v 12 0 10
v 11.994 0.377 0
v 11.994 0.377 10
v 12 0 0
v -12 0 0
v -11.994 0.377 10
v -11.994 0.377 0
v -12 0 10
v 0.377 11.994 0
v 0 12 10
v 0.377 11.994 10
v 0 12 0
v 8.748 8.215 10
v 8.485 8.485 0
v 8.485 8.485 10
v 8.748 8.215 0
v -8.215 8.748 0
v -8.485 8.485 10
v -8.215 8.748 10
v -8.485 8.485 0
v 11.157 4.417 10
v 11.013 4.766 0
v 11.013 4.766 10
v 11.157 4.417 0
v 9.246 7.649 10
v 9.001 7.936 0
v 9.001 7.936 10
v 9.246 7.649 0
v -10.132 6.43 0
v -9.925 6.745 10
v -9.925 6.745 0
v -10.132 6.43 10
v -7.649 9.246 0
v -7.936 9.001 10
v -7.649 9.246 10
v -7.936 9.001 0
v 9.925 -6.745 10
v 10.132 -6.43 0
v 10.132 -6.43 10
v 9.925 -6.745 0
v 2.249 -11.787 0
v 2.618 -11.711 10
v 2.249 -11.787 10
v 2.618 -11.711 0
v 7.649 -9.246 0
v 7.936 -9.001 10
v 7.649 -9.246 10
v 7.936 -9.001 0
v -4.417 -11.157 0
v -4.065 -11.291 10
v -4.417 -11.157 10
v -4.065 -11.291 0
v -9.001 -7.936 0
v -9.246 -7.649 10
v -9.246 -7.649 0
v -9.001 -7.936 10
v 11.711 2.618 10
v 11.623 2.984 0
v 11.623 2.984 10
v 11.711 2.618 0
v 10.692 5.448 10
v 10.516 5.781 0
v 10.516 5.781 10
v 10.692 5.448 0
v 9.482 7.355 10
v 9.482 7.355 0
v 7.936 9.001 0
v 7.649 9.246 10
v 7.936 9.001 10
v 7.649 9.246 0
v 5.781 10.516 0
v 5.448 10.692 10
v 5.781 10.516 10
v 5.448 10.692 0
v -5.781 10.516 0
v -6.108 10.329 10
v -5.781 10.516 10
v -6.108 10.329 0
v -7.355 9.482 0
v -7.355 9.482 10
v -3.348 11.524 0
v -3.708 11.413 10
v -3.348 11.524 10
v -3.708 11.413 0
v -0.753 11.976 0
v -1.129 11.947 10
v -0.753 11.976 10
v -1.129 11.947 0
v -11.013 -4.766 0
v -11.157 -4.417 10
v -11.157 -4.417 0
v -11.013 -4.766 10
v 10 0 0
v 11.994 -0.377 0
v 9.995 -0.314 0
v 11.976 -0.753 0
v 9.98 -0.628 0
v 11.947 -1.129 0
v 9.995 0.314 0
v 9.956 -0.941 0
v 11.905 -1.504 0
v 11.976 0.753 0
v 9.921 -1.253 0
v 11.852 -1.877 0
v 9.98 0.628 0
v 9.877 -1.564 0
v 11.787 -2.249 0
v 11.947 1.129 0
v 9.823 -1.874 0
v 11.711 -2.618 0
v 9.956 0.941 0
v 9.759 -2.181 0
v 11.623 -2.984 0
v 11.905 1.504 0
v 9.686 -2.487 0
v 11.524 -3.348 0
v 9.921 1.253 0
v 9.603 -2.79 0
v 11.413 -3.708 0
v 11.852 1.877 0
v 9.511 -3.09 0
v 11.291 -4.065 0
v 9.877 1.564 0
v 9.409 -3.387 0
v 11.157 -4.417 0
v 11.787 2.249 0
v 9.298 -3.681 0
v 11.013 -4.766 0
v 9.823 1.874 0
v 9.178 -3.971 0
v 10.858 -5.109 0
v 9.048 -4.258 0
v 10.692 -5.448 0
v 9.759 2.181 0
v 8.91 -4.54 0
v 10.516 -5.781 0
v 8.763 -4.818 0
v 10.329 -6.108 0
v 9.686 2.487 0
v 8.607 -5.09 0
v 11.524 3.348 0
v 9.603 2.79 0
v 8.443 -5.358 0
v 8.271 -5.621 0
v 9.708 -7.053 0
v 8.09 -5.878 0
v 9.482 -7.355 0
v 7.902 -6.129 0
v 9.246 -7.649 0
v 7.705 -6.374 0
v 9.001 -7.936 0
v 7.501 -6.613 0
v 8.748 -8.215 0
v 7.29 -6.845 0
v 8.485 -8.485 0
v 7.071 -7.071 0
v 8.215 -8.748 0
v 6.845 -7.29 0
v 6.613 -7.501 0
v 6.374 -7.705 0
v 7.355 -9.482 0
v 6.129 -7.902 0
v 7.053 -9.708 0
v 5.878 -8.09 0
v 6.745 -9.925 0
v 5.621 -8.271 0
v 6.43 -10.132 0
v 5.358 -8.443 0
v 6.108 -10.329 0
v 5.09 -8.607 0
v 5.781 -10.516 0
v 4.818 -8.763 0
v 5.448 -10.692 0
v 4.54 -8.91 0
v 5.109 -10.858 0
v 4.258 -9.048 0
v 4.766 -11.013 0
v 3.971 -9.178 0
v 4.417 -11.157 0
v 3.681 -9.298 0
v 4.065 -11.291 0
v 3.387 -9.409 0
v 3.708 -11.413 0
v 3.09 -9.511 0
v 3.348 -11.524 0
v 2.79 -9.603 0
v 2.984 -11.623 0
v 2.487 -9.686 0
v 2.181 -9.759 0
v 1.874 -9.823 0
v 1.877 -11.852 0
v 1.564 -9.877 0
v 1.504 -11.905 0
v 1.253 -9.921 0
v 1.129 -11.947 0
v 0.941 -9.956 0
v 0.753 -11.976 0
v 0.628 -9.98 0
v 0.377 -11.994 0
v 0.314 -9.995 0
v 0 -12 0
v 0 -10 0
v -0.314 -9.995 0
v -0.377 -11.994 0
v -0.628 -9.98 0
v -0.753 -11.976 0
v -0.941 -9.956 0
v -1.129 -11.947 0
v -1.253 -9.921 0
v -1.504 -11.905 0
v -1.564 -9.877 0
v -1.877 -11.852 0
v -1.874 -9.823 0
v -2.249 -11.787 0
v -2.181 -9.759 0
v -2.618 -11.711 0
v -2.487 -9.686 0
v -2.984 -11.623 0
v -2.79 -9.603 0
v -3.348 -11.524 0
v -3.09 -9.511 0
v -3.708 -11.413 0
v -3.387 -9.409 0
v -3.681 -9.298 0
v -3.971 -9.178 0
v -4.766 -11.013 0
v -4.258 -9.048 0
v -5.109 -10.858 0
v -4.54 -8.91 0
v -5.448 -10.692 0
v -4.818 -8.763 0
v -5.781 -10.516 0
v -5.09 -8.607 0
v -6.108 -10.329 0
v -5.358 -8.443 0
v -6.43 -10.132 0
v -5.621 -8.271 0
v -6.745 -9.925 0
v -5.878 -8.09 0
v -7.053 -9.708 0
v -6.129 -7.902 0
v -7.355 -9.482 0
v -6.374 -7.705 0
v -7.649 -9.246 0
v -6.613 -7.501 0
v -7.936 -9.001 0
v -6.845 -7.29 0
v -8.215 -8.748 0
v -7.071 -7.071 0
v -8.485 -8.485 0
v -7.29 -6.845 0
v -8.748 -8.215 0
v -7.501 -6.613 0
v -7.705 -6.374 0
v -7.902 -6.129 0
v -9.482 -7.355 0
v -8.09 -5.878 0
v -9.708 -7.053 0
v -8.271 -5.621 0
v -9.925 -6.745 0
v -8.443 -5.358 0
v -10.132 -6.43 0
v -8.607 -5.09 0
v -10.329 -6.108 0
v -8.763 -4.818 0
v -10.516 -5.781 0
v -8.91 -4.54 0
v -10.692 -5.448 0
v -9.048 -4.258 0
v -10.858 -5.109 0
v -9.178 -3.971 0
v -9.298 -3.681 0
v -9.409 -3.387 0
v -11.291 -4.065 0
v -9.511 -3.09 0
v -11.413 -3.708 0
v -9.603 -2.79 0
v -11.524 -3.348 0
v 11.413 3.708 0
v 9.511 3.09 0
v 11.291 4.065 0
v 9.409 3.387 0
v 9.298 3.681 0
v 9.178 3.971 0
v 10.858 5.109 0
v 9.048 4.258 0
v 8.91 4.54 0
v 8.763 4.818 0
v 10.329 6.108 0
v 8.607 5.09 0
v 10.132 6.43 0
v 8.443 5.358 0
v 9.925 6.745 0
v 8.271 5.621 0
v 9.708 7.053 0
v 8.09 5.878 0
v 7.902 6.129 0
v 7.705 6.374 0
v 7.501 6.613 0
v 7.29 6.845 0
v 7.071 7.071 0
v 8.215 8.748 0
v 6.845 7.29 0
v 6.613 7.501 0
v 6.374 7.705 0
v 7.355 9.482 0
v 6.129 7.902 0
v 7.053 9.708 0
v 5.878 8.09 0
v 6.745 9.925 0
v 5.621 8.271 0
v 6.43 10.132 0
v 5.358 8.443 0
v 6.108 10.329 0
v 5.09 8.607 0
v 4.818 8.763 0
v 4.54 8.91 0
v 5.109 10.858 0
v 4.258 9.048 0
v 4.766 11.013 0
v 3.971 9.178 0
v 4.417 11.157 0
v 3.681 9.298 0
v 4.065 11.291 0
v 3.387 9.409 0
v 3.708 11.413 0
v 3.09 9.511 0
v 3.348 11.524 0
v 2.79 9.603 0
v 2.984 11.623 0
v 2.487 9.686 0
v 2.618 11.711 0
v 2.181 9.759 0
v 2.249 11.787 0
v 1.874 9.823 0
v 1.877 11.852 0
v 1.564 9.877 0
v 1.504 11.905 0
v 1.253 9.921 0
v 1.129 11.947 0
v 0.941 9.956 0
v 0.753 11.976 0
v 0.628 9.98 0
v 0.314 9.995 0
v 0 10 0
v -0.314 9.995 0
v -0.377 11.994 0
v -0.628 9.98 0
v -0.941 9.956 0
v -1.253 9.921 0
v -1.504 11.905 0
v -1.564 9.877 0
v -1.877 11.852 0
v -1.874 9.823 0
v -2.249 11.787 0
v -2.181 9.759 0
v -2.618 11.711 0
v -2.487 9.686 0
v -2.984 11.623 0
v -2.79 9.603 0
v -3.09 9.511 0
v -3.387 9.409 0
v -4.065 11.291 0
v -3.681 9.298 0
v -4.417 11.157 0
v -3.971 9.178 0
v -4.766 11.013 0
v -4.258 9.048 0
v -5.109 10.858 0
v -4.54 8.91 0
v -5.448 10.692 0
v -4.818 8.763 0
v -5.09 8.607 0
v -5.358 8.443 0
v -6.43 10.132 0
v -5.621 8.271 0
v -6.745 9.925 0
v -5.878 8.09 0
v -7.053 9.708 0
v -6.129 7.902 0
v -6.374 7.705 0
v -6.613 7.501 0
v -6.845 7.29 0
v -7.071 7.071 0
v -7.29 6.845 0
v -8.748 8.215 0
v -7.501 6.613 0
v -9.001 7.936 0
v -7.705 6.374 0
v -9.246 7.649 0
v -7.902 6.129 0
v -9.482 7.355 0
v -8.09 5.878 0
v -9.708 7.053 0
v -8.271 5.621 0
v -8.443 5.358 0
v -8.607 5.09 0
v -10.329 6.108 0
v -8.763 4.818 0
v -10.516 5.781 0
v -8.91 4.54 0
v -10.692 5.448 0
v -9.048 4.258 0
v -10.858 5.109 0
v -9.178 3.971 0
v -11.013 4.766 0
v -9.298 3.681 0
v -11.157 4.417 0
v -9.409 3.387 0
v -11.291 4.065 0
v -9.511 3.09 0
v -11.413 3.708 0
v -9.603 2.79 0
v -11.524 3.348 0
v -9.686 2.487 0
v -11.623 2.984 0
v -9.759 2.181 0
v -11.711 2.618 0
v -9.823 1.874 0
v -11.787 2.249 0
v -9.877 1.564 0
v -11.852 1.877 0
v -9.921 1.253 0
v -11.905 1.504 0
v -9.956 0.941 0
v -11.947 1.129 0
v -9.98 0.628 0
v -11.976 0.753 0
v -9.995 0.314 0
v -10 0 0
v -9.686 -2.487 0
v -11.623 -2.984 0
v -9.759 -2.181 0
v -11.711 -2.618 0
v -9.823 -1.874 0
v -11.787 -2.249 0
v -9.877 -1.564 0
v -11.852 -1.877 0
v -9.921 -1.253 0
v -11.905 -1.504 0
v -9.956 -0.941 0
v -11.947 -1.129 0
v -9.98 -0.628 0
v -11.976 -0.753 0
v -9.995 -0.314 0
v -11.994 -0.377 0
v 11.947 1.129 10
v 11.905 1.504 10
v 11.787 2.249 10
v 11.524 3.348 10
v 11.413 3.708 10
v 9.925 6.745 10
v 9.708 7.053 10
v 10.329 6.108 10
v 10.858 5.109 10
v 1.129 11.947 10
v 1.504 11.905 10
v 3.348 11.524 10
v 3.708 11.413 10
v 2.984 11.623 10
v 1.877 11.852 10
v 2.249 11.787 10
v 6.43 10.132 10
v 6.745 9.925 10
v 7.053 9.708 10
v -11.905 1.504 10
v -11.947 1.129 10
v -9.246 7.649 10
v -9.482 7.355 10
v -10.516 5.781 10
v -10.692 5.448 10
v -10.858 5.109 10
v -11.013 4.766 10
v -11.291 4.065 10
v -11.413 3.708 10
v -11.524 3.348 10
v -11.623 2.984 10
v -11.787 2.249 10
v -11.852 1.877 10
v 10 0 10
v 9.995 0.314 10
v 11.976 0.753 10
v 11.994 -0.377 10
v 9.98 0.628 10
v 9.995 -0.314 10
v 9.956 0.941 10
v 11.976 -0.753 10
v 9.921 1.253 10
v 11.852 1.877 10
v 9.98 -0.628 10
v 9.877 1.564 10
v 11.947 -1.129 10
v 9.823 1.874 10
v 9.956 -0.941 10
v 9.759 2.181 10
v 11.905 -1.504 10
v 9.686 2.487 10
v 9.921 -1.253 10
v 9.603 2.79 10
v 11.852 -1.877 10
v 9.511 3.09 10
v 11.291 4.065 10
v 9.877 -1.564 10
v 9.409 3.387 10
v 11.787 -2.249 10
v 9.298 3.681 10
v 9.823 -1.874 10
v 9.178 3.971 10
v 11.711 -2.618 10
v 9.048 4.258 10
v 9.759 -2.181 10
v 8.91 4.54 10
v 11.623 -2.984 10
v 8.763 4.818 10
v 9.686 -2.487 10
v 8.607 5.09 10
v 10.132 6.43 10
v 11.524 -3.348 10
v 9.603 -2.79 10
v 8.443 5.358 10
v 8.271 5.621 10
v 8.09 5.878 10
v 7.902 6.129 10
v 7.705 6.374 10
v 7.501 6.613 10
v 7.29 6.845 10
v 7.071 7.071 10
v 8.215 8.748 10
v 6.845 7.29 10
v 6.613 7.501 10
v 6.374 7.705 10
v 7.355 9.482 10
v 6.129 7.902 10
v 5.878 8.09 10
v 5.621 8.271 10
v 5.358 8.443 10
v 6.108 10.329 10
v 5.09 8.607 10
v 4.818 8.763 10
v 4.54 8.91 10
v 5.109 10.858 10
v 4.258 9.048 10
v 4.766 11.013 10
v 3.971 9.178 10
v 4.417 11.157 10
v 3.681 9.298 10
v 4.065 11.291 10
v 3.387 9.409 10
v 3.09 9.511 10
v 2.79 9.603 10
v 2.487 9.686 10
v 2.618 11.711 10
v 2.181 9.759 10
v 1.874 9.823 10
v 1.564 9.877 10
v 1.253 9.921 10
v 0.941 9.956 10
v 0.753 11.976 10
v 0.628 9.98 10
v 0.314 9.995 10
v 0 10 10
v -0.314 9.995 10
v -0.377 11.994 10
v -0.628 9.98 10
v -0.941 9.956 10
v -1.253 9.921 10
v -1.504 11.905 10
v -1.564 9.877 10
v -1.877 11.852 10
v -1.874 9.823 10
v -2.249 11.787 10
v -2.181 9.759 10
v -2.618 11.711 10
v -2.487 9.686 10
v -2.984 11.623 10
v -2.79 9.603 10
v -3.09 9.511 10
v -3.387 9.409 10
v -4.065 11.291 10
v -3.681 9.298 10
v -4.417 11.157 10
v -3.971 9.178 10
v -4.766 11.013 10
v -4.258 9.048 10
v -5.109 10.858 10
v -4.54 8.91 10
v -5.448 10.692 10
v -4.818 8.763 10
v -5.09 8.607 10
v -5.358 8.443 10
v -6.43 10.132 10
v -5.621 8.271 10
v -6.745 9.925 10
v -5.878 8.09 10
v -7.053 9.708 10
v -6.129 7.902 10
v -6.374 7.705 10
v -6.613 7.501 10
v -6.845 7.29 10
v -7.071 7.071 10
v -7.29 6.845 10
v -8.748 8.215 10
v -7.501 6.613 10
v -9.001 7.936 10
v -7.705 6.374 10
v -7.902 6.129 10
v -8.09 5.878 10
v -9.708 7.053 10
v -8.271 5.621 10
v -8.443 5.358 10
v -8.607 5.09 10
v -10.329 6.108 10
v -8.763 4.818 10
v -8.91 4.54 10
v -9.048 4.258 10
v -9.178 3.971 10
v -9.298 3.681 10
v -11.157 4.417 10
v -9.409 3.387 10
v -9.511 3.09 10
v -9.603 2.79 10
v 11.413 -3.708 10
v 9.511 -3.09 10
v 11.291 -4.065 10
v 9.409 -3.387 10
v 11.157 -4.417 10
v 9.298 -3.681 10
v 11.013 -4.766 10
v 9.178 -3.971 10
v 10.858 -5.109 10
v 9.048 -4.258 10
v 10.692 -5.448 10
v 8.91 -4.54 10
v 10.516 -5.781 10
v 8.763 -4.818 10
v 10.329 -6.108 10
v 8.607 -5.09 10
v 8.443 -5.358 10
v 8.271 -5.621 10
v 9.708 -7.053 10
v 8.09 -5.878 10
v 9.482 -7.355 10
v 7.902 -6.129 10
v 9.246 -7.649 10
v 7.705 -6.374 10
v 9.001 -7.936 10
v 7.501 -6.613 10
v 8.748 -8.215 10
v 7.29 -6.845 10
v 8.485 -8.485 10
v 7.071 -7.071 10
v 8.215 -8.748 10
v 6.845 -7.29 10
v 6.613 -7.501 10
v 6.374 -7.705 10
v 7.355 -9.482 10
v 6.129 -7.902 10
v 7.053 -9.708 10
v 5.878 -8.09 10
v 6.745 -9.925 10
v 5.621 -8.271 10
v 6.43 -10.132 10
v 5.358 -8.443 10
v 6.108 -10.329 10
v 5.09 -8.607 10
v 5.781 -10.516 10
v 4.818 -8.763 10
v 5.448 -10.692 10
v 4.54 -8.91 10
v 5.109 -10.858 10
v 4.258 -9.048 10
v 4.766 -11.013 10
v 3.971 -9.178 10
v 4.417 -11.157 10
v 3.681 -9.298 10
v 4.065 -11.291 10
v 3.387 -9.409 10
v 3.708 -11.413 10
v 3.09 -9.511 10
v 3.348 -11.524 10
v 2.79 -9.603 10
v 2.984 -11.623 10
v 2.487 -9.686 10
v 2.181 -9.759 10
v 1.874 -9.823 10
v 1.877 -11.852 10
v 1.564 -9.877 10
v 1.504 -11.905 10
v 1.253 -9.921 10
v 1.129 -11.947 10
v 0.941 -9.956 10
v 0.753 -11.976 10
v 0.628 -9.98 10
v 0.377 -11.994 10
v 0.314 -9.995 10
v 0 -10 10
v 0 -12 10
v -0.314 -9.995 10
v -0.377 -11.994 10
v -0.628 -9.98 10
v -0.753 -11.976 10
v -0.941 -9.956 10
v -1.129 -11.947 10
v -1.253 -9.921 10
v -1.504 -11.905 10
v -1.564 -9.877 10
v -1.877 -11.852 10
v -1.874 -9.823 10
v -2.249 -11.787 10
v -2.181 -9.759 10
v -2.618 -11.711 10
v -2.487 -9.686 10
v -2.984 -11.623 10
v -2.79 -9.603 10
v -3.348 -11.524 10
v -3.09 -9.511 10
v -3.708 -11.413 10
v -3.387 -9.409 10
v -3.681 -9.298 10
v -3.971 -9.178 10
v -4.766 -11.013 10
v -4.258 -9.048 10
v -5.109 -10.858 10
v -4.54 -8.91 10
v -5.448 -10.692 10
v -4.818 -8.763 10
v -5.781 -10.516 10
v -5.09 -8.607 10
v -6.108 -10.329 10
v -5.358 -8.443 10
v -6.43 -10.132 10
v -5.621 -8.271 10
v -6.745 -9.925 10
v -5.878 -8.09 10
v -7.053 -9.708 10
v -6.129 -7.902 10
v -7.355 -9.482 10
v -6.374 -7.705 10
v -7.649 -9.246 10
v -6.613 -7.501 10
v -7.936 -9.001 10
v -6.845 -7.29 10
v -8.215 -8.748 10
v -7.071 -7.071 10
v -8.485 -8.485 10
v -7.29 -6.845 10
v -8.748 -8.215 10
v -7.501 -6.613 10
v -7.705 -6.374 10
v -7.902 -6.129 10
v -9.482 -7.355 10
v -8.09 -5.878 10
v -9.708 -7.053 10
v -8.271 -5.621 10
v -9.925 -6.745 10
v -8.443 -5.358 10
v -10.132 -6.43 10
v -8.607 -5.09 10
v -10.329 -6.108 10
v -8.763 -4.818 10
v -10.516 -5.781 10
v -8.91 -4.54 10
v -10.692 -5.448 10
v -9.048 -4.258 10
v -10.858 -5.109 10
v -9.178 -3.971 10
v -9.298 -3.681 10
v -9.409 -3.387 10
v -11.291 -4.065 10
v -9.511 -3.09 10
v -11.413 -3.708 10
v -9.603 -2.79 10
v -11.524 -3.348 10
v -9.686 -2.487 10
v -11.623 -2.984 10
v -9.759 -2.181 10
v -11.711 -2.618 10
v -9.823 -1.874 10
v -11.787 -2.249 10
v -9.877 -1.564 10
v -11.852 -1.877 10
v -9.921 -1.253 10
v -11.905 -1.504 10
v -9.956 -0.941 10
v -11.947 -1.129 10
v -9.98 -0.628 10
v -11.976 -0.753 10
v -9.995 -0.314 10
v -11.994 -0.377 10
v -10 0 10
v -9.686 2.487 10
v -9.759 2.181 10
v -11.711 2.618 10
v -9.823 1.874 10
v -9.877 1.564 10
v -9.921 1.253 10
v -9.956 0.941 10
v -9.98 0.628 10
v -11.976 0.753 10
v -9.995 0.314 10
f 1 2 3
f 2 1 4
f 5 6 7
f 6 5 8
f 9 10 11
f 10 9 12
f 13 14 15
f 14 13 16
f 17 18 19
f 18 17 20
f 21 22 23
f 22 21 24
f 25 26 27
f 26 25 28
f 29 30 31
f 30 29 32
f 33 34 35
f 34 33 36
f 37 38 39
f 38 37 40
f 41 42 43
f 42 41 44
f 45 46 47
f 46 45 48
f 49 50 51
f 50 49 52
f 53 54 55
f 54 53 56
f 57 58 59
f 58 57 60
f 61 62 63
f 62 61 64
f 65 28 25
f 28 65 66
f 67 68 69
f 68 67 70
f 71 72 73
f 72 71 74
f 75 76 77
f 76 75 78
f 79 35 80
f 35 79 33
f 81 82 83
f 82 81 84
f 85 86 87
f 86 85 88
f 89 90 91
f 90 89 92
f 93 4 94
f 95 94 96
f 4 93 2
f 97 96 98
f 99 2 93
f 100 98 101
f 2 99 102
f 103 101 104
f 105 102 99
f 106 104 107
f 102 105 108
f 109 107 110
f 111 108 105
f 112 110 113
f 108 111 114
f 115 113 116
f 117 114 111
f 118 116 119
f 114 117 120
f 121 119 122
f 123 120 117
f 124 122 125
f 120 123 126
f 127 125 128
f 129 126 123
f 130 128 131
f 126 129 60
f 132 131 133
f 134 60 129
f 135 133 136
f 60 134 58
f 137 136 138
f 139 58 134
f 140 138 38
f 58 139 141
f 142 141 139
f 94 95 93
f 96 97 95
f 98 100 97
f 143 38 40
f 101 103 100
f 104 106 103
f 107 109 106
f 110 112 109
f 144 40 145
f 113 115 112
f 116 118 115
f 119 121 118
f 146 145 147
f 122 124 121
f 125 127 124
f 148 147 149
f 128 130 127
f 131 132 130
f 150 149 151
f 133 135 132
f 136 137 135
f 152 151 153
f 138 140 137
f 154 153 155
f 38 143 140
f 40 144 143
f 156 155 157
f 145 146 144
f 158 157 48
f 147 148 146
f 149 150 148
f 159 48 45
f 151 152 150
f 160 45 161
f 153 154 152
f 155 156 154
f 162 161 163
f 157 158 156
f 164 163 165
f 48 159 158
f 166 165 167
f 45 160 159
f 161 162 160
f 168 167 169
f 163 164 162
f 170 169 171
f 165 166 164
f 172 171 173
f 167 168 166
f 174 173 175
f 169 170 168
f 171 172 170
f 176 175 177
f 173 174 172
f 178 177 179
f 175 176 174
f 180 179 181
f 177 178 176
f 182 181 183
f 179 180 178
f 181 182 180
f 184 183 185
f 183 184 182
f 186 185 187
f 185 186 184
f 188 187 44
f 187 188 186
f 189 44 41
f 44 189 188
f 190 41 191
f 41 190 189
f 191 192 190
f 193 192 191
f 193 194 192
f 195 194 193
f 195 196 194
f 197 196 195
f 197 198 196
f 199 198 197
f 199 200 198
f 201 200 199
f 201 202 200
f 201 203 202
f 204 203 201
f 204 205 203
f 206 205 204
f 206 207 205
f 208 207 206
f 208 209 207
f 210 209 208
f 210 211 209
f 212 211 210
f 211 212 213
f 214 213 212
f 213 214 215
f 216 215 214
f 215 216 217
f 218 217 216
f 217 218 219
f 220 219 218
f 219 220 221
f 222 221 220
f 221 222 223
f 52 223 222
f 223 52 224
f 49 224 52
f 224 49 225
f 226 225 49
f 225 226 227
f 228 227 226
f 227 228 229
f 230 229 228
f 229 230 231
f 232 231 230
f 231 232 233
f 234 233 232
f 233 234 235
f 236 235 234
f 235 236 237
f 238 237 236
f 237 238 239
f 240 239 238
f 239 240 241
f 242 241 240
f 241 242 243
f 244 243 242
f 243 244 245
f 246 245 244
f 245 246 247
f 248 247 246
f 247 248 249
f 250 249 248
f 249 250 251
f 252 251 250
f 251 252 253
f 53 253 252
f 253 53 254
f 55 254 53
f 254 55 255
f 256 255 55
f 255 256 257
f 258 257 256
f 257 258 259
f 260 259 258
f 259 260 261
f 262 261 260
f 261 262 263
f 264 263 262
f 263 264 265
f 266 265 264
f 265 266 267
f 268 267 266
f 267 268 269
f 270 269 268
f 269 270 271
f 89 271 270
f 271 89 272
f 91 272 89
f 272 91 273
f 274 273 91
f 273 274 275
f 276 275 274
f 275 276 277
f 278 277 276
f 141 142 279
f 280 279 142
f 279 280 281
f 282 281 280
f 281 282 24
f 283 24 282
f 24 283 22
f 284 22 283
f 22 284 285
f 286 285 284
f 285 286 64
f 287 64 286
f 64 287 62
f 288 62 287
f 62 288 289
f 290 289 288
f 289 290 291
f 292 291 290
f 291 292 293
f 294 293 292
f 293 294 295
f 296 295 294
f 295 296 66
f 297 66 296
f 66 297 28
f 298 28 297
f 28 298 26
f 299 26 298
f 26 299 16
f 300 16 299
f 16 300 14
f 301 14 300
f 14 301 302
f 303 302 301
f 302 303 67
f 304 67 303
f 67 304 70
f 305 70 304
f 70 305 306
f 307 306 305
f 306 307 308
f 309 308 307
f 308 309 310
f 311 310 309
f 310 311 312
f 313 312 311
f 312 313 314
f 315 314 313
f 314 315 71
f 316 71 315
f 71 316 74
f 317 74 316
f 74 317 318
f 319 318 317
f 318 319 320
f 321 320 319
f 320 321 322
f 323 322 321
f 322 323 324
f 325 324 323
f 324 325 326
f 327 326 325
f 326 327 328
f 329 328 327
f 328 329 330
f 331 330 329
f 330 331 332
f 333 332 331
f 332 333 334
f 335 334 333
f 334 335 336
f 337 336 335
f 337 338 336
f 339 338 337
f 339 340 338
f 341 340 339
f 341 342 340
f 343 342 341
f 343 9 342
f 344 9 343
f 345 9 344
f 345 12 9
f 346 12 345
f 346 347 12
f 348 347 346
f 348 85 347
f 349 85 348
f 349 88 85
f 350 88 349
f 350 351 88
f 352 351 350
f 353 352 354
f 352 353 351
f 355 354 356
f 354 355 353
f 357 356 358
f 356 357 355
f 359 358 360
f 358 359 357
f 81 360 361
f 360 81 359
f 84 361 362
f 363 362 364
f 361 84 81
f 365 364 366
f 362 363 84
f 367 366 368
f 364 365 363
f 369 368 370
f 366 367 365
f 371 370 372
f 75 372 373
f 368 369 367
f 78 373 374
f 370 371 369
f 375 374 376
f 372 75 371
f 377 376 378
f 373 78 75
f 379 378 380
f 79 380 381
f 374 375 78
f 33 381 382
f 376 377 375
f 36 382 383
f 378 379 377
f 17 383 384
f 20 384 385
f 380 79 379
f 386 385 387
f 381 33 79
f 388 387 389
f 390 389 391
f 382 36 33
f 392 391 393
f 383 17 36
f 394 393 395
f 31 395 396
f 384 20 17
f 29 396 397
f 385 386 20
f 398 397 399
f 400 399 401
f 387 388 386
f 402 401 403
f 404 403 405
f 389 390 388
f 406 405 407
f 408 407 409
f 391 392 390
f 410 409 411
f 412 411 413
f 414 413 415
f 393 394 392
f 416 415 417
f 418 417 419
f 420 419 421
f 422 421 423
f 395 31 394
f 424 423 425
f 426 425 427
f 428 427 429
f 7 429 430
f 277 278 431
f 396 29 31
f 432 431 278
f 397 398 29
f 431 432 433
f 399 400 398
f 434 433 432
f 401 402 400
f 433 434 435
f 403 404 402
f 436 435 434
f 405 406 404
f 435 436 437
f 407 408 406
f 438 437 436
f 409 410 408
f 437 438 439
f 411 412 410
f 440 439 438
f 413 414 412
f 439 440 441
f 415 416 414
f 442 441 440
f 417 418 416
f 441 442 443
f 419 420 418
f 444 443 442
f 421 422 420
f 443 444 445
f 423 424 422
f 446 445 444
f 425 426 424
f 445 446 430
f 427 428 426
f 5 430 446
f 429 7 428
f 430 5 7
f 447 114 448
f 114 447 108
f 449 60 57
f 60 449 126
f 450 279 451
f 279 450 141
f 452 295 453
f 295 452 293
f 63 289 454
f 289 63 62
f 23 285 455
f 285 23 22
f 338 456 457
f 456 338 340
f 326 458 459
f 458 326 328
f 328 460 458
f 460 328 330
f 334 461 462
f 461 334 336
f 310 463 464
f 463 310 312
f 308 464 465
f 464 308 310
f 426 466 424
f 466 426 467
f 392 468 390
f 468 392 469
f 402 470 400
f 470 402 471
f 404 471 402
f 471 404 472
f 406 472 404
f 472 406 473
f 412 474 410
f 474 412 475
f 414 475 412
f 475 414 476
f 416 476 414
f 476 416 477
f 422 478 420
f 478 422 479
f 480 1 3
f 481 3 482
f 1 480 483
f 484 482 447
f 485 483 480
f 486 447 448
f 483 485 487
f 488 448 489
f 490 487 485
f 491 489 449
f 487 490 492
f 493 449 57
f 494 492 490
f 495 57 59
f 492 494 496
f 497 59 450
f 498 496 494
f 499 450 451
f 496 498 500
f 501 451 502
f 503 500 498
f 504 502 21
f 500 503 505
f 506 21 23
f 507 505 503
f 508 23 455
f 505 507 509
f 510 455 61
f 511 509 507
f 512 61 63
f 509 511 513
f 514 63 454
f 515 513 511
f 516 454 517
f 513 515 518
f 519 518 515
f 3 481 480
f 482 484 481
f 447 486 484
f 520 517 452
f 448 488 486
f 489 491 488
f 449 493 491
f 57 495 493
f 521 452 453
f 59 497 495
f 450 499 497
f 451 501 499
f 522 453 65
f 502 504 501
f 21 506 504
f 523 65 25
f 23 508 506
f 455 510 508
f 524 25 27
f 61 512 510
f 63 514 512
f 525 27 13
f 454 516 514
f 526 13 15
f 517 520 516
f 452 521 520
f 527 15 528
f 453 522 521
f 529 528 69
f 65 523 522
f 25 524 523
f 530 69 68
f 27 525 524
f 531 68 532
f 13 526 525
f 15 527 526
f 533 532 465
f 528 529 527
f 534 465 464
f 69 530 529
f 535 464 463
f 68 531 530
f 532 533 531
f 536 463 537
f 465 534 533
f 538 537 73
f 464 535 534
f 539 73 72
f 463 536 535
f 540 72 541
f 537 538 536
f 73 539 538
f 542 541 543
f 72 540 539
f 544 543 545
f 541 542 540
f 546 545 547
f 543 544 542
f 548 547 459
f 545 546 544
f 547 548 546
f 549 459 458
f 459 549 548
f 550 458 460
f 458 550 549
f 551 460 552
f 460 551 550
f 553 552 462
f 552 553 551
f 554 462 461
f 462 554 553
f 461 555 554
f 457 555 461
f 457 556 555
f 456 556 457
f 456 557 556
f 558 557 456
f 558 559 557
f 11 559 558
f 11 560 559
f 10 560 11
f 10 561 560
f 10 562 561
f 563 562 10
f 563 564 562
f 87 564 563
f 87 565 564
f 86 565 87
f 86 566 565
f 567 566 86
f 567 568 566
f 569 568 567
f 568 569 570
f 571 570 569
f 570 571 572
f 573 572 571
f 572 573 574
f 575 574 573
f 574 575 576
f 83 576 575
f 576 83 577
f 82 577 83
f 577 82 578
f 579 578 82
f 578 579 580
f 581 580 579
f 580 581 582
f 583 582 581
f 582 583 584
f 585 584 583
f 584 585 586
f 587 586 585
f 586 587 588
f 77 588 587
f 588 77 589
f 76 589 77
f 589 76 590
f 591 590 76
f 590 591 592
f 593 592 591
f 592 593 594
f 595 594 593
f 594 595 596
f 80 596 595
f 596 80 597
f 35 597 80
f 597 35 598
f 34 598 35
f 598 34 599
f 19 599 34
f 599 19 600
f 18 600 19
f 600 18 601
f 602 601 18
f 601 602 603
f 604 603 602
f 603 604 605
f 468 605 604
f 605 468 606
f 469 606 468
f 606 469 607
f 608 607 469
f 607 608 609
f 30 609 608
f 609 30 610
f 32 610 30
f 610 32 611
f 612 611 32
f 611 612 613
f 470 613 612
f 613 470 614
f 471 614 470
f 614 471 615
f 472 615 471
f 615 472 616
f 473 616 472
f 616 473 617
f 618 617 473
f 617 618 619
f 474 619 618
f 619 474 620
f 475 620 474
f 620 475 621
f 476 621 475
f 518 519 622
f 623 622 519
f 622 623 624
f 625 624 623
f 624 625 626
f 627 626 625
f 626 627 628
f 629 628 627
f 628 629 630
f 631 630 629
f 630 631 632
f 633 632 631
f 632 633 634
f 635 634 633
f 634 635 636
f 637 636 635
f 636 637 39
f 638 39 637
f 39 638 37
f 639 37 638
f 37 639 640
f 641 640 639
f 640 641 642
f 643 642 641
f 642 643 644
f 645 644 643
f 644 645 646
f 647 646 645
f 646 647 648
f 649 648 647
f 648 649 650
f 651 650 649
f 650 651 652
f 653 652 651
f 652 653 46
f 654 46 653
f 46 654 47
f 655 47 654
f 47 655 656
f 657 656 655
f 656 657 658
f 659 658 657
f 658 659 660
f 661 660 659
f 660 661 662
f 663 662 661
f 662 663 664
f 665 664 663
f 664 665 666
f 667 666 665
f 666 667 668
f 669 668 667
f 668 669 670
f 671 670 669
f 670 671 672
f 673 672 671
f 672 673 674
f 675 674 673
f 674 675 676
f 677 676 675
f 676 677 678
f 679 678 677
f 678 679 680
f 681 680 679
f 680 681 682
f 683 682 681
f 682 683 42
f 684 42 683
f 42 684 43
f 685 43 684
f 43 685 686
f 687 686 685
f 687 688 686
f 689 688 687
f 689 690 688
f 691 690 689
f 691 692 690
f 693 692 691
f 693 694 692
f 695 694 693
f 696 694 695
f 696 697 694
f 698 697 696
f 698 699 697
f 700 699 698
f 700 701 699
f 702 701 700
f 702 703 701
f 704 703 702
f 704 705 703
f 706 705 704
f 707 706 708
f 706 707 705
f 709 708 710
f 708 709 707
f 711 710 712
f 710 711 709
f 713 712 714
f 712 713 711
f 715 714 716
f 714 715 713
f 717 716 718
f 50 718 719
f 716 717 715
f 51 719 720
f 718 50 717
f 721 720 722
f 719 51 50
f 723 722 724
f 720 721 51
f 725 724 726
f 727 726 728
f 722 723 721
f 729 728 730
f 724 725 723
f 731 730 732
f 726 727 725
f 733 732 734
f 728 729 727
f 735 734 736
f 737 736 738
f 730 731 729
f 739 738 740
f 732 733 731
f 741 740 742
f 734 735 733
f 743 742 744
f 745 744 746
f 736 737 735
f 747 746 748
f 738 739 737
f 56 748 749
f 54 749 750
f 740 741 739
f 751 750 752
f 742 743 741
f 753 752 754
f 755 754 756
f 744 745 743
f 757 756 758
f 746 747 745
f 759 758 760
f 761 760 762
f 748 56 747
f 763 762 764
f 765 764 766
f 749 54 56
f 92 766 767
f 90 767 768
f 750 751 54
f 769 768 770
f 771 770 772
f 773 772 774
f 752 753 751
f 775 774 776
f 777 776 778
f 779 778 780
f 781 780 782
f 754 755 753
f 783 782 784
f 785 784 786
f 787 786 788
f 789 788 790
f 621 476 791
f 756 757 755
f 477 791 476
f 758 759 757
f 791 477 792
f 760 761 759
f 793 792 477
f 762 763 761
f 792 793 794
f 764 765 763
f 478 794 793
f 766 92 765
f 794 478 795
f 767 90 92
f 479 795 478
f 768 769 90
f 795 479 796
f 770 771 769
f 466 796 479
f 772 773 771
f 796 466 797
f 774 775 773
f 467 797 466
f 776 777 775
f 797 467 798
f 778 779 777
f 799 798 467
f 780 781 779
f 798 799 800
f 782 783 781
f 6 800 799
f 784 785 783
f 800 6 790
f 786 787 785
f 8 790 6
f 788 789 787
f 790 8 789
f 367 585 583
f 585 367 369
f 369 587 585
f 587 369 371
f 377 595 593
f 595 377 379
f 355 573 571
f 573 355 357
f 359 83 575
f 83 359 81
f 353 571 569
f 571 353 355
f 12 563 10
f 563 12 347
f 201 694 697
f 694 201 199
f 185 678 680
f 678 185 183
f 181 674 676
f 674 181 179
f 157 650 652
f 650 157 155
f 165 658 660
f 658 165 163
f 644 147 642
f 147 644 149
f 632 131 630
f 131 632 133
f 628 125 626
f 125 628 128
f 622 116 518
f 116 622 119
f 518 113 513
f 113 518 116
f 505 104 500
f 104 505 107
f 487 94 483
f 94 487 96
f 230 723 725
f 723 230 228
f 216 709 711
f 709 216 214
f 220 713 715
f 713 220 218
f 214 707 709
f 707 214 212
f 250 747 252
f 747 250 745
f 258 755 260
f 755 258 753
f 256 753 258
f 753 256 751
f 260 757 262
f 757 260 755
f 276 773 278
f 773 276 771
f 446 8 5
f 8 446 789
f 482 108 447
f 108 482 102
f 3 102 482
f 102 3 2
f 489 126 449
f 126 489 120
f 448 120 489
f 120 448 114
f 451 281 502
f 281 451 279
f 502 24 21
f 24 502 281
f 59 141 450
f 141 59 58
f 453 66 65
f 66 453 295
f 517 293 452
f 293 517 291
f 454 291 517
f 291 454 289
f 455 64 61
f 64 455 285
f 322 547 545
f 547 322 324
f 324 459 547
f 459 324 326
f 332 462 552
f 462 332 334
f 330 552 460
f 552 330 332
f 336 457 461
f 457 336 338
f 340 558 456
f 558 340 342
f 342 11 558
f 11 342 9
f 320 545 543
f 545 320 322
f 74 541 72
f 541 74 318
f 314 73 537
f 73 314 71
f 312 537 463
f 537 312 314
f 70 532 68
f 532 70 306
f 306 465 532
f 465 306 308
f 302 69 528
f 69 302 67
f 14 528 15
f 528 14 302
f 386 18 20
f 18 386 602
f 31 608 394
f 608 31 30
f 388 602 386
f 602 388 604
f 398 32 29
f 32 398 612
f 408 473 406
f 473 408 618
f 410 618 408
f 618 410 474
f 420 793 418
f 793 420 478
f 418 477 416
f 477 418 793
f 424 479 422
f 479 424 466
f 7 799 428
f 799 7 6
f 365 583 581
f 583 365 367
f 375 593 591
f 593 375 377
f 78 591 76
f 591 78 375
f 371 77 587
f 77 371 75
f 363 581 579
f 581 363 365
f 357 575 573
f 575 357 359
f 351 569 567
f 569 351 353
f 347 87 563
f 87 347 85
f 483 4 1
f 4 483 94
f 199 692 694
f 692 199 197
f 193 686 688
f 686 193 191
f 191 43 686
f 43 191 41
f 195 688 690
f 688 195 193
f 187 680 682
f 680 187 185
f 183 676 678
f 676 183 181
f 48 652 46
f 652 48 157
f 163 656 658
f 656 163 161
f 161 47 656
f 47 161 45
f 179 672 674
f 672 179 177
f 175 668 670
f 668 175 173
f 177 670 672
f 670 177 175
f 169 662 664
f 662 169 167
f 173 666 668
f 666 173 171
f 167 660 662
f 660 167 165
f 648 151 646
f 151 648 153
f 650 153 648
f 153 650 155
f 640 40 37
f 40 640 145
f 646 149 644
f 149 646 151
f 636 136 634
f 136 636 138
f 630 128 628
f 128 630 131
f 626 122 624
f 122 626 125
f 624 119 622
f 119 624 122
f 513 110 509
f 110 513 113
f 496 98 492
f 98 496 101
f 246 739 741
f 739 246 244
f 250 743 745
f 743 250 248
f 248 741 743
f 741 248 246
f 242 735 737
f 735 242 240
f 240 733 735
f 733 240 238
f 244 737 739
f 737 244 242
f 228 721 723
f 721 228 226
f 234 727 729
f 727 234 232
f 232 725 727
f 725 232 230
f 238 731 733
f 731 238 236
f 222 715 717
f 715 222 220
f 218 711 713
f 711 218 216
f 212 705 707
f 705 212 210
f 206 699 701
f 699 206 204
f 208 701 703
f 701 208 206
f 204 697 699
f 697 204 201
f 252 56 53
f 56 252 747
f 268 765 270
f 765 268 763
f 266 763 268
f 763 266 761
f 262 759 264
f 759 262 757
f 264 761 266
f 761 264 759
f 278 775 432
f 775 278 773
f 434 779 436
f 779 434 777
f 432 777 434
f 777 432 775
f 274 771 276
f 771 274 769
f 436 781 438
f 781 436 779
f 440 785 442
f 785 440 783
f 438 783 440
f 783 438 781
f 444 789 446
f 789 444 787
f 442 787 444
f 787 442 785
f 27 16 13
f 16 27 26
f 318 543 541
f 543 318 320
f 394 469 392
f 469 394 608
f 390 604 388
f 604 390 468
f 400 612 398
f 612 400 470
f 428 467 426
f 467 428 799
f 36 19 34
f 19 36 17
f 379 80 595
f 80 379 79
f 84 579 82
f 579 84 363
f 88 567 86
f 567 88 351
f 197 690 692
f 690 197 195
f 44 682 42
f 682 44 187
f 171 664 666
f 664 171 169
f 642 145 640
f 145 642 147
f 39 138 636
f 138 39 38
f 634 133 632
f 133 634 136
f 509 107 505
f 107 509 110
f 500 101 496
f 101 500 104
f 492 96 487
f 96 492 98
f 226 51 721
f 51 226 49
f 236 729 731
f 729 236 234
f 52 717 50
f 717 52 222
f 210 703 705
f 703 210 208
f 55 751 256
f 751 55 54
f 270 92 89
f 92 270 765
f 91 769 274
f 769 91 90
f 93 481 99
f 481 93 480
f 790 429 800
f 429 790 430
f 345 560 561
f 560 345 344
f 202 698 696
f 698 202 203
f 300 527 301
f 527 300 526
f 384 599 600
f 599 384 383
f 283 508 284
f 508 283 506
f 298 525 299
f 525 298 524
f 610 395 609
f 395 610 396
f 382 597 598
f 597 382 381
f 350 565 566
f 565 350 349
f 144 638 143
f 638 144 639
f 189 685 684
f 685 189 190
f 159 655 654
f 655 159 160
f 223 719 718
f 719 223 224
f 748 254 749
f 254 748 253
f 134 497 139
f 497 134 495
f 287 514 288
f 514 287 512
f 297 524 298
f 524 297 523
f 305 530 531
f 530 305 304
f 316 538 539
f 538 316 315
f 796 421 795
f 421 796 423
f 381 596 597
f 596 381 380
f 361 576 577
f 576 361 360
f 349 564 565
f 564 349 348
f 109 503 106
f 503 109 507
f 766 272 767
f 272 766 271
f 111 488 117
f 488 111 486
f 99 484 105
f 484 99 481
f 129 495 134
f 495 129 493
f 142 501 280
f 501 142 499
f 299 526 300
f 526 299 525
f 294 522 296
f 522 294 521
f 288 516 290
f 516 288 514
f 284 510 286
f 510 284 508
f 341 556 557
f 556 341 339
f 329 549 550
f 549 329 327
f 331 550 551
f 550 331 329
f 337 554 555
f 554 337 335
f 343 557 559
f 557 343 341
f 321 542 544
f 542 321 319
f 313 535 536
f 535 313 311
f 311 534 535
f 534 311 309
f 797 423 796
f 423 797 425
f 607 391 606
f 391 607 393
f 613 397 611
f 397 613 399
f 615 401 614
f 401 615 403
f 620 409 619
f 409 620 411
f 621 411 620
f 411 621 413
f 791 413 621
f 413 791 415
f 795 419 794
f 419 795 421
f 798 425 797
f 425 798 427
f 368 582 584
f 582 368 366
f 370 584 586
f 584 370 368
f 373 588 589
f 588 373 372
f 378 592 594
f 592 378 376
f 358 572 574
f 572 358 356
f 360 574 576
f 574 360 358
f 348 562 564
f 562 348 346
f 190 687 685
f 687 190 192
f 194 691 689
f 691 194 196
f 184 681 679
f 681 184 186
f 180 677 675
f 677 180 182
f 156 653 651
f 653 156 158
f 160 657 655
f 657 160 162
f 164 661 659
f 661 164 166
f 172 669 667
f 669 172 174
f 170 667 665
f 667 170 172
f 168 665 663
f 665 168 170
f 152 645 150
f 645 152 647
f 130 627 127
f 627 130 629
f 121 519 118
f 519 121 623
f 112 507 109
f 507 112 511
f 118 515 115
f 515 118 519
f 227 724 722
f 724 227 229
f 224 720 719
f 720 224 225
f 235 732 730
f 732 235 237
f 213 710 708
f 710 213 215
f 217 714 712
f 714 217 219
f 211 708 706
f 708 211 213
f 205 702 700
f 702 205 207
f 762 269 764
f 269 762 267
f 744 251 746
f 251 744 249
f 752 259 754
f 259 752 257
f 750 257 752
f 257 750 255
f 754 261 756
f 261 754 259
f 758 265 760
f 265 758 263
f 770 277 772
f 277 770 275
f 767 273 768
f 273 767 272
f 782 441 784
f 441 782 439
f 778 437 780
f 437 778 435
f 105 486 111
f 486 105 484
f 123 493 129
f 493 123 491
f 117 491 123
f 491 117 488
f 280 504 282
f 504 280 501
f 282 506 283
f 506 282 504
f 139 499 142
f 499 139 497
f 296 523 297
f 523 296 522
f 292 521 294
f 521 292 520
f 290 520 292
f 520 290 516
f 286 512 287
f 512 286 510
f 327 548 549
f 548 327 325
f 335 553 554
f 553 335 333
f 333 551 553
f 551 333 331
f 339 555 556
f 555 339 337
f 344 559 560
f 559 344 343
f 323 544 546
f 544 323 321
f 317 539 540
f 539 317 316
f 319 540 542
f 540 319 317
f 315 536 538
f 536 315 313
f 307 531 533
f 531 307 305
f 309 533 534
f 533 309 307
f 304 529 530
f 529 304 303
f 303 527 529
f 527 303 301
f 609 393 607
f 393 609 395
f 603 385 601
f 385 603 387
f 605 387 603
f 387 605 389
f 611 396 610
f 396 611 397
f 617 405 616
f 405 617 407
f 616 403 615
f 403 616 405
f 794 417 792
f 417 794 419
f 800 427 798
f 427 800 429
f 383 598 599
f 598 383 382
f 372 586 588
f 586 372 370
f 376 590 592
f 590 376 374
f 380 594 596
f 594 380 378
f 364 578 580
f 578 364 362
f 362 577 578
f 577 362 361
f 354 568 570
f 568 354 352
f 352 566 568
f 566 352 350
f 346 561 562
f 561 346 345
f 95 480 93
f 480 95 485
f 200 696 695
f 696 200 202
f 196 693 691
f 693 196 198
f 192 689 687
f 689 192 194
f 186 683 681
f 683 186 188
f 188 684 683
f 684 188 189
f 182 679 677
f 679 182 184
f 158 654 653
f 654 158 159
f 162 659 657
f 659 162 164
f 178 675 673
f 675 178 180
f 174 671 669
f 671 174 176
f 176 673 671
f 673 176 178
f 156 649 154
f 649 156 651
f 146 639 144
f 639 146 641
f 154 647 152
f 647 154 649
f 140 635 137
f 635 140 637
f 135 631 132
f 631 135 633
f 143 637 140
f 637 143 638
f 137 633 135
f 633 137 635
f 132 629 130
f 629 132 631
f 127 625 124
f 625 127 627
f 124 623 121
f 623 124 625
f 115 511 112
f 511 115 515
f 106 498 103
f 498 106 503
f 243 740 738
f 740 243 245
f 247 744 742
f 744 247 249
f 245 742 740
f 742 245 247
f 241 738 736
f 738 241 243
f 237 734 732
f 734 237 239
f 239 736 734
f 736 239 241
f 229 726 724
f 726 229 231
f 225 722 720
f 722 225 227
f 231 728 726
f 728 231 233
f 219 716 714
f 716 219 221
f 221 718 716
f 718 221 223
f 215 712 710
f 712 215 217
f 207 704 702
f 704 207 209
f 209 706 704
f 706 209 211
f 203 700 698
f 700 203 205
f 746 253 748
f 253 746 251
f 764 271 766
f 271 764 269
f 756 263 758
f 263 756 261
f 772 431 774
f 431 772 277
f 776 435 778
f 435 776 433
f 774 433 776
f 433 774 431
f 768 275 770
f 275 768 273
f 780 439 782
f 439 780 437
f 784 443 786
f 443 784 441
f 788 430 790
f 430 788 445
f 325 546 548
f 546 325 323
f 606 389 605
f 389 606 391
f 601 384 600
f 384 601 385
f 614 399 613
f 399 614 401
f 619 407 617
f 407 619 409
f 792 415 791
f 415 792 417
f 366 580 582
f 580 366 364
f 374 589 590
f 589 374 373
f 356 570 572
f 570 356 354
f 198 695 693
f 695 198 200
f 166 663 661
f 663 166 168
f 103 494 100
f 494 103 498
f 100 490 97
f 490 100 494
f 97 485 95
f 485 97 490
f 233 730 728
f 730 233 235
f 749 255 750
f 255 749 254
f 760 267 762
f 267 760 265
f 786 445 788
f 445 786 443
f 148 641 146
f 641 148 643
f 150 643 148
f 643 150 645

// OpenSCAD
$fn=200;

difference() {
    cylinder(h=10, d=24);
    translate([0, 0, -1]) cylinder(h = 63, d=20);
}
